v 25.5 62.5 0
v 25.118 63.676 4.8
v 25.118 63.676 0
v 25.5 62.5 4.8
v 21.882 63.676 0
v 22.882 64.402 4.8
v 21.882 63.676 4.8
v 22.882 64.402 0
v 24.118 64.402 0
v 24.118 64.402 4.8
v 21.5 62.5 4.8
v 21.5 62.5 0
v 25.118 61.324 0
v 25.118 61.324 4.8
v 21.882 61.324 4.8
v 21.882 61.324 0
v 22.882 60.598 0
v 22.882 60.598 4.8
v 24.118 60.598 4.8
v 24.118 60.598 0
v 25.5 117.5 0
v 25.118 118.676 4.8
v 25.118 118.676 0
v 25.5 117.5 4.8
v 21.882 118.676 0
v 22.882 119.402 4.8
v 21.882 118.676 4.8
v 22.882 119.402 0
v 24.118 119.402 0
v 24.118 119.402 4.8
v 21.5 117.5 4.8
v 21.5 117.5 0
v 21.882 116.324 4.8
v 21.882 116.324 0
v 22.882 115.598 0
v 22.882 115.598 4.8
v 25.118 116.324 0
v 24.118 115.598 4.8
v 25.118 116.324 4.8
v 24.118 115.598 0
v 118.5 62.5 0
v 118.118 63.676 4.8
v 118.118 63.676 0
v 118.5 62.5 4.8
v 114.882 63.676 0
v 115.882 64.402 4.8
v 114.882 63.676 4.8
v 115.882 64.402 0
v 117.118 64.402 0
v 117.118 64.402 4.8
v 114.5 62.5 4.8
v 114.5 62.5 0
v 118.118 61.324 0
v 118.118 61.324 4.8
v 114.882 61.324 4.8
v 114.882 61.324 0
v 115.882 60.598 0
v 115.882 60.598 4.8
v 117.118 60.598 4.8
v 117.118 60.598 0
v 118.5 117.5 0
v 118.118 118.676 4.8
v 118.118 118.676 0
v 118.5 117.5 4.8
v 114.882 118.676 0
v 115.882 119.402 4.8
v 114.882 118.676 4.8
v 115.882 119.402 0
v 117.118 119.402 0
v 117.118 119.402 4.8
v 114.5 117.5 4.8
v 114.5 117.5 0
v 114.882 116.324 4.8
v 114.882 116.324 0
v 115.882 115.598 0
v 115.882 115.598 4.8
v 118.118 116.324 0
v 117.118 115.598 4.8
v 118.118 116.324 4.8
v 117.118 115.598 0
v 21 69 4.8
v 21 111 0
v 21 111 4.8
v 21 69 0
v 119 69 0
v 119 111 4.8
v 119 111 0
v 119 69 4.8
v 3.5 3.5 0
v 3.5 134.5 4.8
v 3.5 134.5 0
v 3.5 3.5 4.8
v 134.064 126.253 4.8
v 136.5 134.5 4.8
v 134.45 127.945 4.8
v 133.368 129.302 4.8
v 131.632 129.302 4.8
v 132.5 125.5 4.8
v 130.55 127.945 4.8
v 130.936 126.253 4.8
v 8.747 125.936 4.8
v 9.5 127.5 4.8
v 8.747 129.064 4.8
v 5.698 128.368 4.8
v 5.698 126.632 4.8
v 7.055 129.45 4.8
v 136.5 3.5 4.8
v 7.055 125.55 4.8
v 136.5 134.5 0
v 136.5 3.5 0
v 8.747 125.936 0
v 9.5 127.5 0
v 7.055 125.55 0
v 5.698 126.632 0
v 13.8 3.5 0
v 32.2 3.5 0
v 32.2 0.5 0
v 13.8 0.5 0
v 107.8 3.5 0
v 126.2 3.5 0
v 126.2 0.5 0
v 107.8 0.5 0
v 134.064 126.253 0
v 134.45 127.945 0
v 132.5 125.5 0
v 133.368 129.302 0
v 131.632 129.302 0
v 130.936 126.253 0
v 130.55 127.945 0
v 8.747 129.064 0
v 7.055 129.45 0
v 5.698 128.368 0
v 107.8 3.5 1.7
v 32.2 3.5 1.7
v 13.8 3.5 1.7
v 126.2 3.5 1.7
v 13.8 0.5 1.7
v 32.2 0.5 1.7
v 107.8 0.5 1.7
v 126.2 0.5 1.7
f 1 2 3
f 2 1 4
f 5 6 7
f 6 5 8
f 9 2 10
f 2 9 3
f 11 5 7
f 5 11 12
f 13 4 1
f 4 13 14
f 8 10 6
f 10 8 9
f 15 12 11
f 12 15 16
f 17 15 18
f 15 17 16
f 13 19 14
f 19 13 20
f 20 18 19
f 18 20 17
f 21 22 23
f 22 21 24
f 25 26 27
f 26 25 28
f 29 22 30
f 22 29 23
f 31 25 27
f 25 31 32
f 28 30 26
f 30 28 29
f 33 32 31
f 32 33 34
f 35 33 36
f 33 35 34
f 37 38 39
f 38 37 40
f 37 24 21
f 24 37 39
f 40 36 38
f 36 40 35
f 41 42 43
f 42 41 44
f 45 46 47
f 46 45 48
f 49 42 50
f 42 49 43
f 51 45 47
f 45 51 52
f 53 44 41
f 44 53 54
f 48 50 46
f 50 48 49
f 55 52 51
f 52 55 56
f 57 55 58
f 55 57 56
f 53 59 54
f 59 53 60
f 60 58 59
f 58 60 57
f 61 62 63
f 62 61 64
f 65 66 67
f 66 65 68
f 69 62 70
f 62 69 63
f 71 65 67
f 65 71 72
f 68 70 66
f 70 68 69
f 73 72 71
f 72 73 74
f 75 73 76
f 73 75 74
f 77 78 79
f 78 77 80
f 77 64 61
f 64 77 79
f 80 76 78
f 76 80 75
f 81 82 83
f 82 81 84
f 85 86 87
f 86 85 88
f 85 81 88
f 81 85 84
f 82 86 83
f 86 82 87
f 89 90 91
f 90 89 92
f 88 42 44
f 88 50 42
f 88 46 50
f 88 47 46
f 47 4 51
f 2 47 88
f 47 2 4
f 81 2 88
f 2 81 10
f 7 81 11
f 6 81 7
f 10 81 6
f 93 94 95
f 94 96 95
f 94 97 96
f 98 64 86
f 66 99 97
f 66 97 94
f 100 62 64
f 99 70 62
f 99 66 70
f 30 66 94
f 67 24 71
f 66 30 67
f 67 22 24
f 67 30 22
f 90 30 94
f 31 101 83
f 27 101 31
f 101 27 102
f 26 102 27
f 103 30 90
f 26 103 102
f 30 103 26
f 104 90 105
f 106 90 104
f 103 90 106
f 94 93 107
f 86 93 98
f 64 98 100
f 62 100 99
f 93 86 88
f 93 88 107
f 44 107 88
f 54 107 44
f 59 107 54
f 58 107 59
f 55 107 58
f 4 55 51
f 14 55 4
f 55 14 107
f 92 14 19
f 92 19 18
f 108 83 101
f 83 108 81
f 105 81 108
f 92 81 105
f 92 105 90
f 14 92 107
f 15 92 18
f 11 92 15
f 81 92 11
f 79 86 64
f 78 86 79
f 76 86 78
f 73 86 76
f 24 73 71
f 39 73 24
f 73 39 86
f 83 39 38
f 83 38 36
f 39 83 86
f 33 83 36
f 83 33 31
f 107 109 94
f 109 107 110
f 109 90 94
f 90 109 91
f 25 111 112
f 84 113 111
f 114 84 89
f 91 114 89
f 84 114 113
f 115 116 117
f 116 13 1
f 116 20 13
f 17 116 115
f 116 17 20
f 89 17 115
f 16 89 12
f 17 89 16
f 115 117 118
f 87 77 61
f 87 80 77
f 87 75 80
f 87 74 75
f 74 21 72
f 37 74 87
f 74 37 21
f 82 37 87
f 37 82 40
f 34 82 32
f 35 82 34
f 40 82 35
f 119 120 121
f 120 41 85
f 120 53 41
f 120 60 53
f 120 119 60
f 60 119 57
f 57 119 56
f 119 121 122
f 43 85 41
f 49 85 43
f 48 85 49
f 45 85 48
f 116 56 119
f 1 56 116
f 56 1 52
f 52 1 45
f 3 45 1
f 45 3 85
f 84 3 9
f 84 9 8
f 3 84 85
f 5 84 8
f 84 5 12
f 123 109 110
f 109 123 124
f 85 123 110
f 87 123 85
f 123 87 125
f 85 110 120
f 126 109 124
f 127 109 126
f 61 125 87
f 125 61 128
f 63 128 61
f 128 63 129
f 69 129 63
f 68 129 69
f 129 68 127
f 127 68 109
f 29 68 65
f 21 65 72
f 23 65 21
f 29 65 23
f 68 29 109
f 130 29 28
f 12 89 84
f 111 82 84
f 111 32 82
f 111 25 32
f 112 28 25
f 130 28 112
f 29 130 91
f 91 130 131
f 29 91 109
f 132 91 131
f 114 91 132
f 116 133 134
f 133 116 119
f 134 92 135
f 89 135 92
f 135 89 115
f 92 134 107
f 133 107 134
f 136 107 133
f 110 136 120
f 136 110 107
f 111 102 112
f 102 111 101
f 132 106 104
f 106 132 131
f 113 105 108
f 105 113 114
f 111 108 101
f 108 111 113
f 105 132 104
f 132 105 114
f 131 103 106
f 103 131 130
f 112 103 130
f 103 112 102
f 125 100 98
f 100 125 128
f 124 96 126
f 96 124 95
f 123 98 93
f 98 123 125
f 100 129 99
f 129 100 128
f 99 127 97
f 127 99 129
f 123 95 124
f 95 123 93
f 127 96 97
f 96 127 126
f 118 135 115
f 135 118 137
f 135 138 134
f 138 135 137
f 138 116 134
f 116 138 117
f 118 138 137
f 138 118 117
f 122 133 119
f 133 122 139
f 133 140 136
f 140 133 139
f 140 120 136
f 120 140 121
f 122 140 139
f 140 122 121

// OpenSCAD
wall_thickness = 3;
case_depth = 135;
case_width = 140;
case_height = 72;

hole_radius = 2;

lid_height = 5;
tab_width = 20; // The width of the tabs on the lid

wall_tolerance = 1;
tab_tolerance = .8;

screw_radius = (4 / 2);
screw_length = ((15 - 5) / 2);



LCD2004_BOARD_WIDTH = 98;
LCD2004_BOARD_HEIGHT = 60;
module LCD2004() {
    
    screw_hole_diameter = 4;
    panel_width = LCD2004_BOARD_WIDTH;
    board_width = panel_width;
    screw_width = 93;

    panel_height = 42;
    board_height = LCD2004_BOARD_HEIGHT;
    screw_height = 55;

    screw_resolution = 10;
    
    translate([(board_width-screw_width)/2,(board_height-screw_height)/2,-0.1]) cylinder(h=screw_length, r=(screw_hole_diameter/2), $fn=screw_resolution);
    translate([(board_width-screw_width)/2,(board_height-screw_height)/2+screw_height,-0.1]) cylinder(h=screw_length, r=(screw_hole_diameter/2), $fn=screw_resolution);
    translate([(board_width-screw_width)/2+screw_width,(board_height-screw_height)/2,-0.1]) cylinder(h=screw_length, r=(screw_hole_diameter/2), $fn=screw_resolution);
    translate([(board_width-screw_width)/2+screw_width,(board_height-screw_height)/2+screw_height,-0.1]) cylinder(h=screw_length, r=(screw_hole_diameter/2), $fn=screw_resolution);
    translate([(board_width-panel_width)/2, (board_height-panel_height)/2, -0.1]) cube([panel_width,panel_height,wall_thickness+2]);
}

module make_lcd_standoff() {
    standoff_height = 10-wall_thickness;
    screw_hole_diameter = 4;
    standoff_width = screw_hole_diameter + 4;
    screw_resolution = 10;

    difference() {
        cube([standoff_width, standoff_width, standoff_height]);
        translate([standoff_width/2, standoff_width/2, -0.1]) cylinder(h=standoff_height+1, r=(screw_hole_diameter/2), $fn=screw_resolution);
    }
}


module make_screw_triangle(screw_radius, screw_length) {
    post_width = (screw_radius * 4) + 1;
    length = screw_length;

    translate([post_width/2,post_width/2,length/2]) cylinder(h = (length+2), r1 = screw_radius, r2 = screw_radius, center=true);
}


// Now, add the screw triangles
post_width = (screw_radius * 4) + 1;

difference() {
    translate([wall_thickness+(wall_tolerance/2),wall_thickness+(wall_tolerance/2),0]) cube([case_width-(wall_thickness*2)-wall_tolerance, case_depth-wall_thickness-wall_tolerance, lid_height-.2]);
    {
        translate([wall_thickness,case_depth-wall_thickness,0]) mirror([0,1,0]) make_screw_triangle(screw_radius, screw_length);
        translate([case_width-wall_thickness,case_depth-wall_thickness,0]) mirror([1,1,0]) make_screw_triangle(screw_radius, screw_length);
        translate([(case_width-LCD2004_BOARD_WIDTH)/2,case_depth/3*2-(LCD2004_BOARD_HEIGHT/2),0]) LCD2004();    
    }
}

translate([wall_thickness+10+tab_tolerance,(wall_tolerance/2),0]) cube([tab_width-(tab_tolerance*2),wall_thickness+2,lid_height/2-tab_tolerance]);
translate([case_width-tab_width-(wall_thickness+10)+tab_tolerance,(wall_tolerance/2),0]) cube([tab_width-(tab_tolerance*2),wall_thickness+2,lid_height/2-tab_tolerance]);

//translate([case_width/2, case_depth/3*2, 0]) make_lcd_standoff();
//translate([case_width/2-15, case_depth/3*2, 0]) make_lcd_standoff();
//translate([case_width/2-30, case_depth/3*2, 0]) make_lcd_standoff();
//translate([case_width/2+15, case_depth/3*2, 0]) make_lcd_standoff();
